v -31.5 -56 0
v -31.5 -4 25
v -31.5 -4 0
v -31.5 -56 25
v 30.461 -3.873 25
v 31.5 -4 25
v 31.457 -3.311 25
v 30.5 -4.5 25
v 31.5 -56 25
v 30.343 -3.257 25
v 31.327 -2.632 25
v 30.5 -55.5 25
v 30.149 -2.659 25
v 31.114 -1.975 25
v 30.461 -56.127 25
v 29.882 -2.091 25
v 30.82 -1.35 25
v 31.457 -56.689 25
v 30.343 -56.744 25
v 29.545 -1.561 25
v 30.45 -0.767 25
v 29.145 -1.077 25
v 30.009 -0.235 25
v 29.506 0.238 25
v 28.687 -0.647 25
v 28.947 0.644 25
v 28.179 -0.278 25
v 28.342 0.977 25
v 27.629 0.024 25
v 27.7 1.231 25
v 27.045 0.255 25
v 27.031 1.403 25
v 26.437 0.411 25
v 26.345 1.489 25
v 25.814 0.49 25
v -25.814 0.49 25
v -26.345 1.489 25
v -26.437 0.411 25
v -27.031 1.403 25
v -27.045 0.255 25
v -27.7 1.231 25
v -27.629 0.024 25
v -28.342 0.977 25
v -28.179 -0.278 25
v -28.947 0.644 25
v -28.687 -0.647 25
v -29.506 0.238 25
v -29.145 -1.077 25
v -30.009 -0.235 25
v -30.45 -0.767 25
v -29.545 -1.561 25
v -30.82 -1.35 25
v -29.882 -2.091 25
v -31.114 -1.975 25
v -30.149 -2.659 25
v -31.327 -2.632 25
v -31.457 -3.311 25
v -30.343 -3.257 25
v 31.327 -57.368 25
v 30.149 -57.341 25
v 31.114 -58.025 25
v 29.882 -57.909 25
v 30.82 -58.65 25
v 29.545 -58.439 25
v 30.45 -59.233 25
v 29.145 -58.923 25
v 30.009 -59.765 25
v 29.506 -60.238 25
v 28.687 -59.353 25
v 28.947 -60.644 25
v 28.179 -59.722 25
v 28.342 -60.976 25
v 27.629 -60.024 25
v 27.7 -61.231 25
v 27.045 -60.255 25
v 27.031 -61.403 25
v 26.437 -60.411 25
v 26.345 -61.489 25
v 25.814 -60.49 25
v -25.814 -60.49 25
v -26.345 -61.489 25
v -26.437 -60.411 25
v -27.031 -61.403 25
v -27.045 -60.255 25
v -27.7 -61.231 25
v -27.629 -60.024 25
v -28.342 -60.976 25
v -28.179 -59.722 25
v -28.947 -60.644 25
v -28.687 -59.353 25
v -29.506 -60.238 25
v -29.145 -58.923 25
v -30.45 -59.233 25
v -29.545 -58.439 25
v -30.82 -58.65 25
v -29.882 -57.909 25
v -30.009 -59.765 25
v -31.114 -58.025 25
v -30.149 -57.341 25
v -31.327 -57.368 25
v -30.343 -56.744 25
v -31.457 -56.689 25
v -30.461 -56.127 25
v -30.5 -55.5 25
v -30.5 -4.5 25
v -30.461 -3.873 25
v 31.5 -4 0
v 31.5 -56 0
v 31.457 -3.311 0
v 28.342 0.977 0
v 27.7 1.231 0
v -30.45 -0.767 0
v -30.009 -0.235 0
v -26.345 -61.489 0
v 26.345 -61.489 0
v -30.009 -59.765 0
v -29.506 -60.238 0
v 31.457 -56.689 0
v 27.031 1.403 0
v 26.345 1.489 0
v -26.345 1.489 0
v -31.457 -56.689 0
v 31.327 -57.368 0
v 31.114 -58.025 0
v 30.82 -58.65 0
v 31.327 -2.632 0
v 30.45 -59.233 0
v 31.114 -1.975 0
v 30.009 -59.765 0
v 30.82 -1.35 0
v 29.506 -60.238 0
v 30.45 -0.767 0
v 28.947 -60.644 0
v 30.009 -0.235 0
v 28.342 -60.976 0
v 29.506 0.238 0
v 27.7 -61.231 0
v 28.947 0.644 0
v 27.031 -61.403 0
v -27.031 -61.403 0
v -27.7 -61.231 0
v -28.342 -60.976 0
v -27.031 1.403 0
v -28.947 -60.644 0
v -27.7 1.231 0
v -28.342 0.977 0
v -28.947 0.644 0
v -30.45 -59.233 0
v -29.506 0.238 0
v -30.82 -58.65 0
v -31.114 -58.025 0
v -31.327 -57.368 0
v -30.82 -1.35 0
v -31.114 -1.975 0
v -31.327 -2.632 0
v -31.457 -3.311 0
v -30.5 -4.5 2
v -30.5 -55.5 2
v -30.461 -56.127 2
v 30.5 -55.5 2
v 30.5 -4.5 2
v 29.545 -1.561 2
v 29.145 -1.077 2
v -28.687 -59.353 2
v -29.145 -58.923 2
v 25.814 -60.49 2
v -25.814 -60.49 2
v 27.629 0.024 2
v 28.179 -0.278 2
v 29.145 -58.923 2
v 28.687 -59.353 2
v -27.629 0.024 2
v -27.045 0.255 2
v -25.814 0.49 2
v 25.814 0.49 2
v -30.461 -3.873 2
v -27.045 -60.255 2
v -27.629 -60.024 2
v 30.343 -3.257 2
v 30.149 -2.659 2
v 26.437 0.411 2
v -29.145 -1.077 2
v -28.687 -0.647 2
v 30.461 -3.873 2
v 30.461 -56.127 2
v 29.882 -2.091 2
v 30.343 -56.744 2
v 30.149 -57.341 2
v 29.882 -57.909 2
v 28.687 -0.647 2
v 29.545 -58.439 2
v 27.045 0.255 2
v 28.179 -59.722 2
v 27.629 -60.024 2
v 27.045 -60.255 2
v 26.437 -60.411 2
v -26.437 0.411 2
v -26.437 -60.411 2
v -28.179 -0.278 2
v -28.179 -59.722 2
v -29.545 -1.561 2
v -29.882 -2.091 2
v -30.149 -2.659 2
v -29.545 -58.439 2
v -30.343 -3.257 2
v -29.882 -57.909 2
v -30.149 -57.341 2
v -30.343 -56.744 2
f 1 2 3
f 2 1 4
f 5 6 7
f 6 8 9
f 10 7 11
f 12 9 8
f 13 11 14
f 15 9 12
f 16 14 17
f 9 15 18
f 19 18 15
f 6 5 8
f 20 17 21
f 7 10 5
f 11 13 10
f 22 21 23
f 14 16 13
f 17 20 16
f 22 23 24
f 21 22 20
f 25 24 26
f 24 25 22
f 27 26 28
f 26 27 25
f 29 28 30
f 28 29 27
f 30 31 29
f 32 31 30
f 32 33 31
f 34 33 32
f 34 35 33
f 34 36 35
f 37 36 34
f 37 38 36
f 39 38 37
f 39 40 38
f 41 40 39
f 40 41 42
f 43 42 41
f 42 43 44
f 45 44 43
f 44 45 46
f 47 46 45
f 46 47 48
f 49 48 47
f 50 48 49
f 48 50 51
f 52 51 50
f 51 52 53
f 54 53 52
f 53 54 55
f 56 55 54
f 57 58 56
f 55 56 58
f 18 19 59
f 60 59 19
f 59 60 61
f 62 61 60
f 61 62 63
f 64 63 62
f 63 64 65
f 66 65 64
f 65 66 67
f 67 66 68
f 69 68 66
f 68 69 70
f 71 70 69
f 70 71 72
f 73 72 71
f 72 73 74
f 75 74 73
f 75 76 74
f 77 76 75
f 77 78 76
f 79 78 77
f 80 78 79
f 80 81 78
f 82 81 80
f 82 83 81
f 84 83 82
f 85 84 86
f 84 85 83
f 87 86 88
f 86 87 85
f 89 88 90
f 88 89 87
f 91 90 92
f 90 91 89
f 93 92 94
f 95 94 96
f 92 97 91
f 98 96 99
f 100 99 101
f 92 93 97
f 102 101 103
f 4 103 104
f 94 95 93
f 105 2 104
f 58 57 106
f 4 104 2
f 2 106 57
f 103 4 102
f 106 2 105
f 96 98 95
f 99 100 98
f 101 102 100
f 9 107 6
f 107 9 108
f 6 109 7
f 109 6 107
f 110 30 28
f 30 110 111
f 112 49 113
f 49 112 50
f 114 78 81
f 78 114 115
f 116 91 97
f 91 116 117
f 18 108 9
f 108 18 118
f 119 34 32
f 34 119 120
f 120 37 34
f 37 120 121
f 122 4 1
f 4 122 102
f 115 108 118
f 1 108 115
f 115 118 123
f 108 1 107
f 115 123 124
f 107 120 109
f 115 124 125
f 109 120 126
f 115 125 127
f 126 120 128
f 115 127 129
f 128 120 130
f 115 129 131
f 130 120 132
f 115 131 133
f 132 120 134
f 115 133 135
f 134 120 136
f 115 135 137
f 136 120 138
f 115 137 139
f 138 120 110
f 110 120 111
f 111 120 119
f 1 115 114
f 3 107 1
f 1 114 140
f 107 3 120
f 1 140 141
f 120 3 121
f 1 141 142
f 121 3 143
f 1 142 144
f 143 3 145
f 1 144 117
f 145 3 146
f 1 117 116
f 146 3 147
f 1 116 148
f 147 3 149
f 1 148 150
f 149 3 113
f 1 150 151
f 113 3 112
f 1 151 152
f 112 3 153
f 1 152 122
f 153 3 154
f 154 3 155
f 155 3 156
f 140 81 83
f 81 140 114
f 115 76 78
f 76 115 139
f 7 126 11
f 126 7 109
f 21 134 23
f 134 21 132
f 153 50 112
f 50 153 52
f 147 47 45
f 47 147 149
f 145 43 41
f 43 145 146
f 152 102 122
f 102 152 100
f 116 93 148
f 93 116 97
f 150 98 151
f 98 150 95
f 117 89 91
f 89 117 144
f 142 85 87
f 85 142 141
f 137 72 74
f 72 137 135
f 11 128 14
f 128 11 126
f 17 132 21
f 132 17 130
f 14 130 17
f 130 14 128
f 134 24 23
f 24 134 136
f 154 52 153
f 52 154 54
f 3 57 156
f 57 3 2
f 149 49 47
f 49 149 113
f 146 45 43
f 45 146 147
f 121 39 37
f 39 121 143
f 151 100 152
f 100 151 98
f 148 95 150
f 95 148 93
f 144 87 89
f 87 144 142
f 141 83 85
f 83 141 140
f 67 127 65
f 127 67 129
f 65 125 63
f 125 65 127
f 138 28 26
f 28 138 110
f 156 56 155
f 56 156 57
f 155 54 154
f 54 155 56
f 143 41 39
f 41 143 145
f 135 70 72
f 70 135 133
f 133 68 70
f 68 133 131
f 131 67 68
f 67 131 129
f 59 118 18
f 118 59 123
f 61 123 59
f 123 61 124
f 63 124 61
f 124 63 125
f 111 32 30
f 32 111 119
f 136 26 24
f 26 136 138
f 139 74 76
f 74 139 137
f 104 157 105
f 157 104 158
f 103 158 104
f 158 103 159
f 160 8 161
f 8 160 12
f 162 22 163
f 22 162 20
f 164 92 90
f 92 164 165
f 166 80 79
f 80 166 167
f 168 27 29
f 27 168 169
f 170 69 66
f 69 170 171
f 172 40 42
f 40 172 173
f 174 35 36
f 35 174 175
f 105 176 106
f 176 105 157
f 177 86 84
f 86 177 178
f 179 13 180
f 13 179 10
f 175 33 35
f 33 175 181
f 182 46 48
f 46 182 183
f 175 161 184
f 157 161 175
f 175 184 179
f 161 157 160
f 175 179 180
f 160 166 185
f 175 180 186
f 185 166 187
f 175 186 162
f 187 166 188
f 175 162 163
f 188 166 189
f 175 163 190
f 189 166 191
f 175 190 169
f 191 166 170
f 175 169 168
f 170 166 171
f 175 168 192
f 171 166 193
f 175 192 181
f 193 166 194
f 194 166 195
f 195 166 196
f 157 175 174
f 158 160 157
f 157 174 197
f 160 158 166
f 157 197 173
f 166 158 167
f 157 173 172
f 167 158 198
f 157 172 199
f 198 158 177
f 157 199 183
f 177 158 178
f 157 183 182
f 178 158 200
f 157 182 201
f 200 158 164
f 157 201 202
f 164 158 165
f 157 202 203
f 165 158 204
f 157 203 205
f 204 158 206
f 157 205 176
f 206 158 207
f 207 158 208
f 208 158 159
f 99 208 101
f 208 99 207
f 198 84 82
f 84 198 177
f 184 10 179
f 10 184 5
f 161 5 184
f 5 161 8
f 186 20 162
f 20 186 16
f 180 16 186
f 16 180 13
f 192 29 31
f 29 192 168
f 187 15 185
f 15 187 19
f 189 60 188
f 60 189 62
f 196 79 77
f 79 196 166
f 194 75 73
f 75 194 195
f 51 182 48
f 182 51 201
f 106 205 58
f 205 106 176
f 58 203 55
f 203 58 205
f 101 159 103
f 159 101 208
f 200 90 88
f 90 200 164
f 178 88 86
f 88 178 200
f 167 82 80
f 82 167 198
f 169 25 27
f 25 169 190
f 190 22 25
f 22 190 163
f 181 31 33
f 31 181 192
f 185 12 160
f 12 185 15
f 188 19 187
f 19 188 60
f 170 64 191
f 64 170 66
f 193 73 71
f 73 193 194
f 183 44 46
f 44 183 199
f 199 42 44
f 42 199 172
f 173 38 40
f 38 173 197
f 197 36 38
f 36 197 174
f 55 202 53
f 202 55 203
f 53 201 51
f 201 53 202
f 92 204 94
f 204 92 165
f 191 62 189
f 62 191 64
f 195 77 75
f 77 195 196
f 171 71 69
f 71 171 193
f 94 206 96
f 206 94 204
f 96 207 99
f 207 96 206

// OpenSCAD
$fn = 50;


difference() {
	union() {
		translate(v = [0, -30.0000000000, 0]) {
			hull() {
				translate(v = [-26.0000000000, 26.0000000000, 0]) {
					cylinder(h = 25, r = 5.5000000000);
				}
				translate(v = [26.0000000000, 26.0000000000, 0]) {
					cylinder(h = 25, r = 5.5000000000);
				}
				translate(v = [-26.0000000000, -26.0000000000, 0]) {
					cylinder(h = 25, r = 5.5000000000);
				}
				translate(v = [26.0000000000, -26.0000000000, 0]) {
					cylinder(h = 25, r = 5.5000000000);
				}
			}
		}
	}
	union() {
		translate(v = [0, -30.0000000000, 2]) {
			hull() {
				translate(v = [-25.5000000000, 25.5000000000, 0]) {
					cylinder(h = 50, r = 5);
				}
				translate(v = [25.5000000000, 25.5000000000, 0]) {
					cylinder(h = 50, r = 5);
				}
				translate(v = [-25.5000000000, -25.5000000000, 0]) {
					cylinder(h = 50, r = 5);
				}
				translate(v = [25.5000000000, -25.5000000000, 0]) {
					cylinder(h = 50, r = 5);
				}
			}
		}
	}
}
